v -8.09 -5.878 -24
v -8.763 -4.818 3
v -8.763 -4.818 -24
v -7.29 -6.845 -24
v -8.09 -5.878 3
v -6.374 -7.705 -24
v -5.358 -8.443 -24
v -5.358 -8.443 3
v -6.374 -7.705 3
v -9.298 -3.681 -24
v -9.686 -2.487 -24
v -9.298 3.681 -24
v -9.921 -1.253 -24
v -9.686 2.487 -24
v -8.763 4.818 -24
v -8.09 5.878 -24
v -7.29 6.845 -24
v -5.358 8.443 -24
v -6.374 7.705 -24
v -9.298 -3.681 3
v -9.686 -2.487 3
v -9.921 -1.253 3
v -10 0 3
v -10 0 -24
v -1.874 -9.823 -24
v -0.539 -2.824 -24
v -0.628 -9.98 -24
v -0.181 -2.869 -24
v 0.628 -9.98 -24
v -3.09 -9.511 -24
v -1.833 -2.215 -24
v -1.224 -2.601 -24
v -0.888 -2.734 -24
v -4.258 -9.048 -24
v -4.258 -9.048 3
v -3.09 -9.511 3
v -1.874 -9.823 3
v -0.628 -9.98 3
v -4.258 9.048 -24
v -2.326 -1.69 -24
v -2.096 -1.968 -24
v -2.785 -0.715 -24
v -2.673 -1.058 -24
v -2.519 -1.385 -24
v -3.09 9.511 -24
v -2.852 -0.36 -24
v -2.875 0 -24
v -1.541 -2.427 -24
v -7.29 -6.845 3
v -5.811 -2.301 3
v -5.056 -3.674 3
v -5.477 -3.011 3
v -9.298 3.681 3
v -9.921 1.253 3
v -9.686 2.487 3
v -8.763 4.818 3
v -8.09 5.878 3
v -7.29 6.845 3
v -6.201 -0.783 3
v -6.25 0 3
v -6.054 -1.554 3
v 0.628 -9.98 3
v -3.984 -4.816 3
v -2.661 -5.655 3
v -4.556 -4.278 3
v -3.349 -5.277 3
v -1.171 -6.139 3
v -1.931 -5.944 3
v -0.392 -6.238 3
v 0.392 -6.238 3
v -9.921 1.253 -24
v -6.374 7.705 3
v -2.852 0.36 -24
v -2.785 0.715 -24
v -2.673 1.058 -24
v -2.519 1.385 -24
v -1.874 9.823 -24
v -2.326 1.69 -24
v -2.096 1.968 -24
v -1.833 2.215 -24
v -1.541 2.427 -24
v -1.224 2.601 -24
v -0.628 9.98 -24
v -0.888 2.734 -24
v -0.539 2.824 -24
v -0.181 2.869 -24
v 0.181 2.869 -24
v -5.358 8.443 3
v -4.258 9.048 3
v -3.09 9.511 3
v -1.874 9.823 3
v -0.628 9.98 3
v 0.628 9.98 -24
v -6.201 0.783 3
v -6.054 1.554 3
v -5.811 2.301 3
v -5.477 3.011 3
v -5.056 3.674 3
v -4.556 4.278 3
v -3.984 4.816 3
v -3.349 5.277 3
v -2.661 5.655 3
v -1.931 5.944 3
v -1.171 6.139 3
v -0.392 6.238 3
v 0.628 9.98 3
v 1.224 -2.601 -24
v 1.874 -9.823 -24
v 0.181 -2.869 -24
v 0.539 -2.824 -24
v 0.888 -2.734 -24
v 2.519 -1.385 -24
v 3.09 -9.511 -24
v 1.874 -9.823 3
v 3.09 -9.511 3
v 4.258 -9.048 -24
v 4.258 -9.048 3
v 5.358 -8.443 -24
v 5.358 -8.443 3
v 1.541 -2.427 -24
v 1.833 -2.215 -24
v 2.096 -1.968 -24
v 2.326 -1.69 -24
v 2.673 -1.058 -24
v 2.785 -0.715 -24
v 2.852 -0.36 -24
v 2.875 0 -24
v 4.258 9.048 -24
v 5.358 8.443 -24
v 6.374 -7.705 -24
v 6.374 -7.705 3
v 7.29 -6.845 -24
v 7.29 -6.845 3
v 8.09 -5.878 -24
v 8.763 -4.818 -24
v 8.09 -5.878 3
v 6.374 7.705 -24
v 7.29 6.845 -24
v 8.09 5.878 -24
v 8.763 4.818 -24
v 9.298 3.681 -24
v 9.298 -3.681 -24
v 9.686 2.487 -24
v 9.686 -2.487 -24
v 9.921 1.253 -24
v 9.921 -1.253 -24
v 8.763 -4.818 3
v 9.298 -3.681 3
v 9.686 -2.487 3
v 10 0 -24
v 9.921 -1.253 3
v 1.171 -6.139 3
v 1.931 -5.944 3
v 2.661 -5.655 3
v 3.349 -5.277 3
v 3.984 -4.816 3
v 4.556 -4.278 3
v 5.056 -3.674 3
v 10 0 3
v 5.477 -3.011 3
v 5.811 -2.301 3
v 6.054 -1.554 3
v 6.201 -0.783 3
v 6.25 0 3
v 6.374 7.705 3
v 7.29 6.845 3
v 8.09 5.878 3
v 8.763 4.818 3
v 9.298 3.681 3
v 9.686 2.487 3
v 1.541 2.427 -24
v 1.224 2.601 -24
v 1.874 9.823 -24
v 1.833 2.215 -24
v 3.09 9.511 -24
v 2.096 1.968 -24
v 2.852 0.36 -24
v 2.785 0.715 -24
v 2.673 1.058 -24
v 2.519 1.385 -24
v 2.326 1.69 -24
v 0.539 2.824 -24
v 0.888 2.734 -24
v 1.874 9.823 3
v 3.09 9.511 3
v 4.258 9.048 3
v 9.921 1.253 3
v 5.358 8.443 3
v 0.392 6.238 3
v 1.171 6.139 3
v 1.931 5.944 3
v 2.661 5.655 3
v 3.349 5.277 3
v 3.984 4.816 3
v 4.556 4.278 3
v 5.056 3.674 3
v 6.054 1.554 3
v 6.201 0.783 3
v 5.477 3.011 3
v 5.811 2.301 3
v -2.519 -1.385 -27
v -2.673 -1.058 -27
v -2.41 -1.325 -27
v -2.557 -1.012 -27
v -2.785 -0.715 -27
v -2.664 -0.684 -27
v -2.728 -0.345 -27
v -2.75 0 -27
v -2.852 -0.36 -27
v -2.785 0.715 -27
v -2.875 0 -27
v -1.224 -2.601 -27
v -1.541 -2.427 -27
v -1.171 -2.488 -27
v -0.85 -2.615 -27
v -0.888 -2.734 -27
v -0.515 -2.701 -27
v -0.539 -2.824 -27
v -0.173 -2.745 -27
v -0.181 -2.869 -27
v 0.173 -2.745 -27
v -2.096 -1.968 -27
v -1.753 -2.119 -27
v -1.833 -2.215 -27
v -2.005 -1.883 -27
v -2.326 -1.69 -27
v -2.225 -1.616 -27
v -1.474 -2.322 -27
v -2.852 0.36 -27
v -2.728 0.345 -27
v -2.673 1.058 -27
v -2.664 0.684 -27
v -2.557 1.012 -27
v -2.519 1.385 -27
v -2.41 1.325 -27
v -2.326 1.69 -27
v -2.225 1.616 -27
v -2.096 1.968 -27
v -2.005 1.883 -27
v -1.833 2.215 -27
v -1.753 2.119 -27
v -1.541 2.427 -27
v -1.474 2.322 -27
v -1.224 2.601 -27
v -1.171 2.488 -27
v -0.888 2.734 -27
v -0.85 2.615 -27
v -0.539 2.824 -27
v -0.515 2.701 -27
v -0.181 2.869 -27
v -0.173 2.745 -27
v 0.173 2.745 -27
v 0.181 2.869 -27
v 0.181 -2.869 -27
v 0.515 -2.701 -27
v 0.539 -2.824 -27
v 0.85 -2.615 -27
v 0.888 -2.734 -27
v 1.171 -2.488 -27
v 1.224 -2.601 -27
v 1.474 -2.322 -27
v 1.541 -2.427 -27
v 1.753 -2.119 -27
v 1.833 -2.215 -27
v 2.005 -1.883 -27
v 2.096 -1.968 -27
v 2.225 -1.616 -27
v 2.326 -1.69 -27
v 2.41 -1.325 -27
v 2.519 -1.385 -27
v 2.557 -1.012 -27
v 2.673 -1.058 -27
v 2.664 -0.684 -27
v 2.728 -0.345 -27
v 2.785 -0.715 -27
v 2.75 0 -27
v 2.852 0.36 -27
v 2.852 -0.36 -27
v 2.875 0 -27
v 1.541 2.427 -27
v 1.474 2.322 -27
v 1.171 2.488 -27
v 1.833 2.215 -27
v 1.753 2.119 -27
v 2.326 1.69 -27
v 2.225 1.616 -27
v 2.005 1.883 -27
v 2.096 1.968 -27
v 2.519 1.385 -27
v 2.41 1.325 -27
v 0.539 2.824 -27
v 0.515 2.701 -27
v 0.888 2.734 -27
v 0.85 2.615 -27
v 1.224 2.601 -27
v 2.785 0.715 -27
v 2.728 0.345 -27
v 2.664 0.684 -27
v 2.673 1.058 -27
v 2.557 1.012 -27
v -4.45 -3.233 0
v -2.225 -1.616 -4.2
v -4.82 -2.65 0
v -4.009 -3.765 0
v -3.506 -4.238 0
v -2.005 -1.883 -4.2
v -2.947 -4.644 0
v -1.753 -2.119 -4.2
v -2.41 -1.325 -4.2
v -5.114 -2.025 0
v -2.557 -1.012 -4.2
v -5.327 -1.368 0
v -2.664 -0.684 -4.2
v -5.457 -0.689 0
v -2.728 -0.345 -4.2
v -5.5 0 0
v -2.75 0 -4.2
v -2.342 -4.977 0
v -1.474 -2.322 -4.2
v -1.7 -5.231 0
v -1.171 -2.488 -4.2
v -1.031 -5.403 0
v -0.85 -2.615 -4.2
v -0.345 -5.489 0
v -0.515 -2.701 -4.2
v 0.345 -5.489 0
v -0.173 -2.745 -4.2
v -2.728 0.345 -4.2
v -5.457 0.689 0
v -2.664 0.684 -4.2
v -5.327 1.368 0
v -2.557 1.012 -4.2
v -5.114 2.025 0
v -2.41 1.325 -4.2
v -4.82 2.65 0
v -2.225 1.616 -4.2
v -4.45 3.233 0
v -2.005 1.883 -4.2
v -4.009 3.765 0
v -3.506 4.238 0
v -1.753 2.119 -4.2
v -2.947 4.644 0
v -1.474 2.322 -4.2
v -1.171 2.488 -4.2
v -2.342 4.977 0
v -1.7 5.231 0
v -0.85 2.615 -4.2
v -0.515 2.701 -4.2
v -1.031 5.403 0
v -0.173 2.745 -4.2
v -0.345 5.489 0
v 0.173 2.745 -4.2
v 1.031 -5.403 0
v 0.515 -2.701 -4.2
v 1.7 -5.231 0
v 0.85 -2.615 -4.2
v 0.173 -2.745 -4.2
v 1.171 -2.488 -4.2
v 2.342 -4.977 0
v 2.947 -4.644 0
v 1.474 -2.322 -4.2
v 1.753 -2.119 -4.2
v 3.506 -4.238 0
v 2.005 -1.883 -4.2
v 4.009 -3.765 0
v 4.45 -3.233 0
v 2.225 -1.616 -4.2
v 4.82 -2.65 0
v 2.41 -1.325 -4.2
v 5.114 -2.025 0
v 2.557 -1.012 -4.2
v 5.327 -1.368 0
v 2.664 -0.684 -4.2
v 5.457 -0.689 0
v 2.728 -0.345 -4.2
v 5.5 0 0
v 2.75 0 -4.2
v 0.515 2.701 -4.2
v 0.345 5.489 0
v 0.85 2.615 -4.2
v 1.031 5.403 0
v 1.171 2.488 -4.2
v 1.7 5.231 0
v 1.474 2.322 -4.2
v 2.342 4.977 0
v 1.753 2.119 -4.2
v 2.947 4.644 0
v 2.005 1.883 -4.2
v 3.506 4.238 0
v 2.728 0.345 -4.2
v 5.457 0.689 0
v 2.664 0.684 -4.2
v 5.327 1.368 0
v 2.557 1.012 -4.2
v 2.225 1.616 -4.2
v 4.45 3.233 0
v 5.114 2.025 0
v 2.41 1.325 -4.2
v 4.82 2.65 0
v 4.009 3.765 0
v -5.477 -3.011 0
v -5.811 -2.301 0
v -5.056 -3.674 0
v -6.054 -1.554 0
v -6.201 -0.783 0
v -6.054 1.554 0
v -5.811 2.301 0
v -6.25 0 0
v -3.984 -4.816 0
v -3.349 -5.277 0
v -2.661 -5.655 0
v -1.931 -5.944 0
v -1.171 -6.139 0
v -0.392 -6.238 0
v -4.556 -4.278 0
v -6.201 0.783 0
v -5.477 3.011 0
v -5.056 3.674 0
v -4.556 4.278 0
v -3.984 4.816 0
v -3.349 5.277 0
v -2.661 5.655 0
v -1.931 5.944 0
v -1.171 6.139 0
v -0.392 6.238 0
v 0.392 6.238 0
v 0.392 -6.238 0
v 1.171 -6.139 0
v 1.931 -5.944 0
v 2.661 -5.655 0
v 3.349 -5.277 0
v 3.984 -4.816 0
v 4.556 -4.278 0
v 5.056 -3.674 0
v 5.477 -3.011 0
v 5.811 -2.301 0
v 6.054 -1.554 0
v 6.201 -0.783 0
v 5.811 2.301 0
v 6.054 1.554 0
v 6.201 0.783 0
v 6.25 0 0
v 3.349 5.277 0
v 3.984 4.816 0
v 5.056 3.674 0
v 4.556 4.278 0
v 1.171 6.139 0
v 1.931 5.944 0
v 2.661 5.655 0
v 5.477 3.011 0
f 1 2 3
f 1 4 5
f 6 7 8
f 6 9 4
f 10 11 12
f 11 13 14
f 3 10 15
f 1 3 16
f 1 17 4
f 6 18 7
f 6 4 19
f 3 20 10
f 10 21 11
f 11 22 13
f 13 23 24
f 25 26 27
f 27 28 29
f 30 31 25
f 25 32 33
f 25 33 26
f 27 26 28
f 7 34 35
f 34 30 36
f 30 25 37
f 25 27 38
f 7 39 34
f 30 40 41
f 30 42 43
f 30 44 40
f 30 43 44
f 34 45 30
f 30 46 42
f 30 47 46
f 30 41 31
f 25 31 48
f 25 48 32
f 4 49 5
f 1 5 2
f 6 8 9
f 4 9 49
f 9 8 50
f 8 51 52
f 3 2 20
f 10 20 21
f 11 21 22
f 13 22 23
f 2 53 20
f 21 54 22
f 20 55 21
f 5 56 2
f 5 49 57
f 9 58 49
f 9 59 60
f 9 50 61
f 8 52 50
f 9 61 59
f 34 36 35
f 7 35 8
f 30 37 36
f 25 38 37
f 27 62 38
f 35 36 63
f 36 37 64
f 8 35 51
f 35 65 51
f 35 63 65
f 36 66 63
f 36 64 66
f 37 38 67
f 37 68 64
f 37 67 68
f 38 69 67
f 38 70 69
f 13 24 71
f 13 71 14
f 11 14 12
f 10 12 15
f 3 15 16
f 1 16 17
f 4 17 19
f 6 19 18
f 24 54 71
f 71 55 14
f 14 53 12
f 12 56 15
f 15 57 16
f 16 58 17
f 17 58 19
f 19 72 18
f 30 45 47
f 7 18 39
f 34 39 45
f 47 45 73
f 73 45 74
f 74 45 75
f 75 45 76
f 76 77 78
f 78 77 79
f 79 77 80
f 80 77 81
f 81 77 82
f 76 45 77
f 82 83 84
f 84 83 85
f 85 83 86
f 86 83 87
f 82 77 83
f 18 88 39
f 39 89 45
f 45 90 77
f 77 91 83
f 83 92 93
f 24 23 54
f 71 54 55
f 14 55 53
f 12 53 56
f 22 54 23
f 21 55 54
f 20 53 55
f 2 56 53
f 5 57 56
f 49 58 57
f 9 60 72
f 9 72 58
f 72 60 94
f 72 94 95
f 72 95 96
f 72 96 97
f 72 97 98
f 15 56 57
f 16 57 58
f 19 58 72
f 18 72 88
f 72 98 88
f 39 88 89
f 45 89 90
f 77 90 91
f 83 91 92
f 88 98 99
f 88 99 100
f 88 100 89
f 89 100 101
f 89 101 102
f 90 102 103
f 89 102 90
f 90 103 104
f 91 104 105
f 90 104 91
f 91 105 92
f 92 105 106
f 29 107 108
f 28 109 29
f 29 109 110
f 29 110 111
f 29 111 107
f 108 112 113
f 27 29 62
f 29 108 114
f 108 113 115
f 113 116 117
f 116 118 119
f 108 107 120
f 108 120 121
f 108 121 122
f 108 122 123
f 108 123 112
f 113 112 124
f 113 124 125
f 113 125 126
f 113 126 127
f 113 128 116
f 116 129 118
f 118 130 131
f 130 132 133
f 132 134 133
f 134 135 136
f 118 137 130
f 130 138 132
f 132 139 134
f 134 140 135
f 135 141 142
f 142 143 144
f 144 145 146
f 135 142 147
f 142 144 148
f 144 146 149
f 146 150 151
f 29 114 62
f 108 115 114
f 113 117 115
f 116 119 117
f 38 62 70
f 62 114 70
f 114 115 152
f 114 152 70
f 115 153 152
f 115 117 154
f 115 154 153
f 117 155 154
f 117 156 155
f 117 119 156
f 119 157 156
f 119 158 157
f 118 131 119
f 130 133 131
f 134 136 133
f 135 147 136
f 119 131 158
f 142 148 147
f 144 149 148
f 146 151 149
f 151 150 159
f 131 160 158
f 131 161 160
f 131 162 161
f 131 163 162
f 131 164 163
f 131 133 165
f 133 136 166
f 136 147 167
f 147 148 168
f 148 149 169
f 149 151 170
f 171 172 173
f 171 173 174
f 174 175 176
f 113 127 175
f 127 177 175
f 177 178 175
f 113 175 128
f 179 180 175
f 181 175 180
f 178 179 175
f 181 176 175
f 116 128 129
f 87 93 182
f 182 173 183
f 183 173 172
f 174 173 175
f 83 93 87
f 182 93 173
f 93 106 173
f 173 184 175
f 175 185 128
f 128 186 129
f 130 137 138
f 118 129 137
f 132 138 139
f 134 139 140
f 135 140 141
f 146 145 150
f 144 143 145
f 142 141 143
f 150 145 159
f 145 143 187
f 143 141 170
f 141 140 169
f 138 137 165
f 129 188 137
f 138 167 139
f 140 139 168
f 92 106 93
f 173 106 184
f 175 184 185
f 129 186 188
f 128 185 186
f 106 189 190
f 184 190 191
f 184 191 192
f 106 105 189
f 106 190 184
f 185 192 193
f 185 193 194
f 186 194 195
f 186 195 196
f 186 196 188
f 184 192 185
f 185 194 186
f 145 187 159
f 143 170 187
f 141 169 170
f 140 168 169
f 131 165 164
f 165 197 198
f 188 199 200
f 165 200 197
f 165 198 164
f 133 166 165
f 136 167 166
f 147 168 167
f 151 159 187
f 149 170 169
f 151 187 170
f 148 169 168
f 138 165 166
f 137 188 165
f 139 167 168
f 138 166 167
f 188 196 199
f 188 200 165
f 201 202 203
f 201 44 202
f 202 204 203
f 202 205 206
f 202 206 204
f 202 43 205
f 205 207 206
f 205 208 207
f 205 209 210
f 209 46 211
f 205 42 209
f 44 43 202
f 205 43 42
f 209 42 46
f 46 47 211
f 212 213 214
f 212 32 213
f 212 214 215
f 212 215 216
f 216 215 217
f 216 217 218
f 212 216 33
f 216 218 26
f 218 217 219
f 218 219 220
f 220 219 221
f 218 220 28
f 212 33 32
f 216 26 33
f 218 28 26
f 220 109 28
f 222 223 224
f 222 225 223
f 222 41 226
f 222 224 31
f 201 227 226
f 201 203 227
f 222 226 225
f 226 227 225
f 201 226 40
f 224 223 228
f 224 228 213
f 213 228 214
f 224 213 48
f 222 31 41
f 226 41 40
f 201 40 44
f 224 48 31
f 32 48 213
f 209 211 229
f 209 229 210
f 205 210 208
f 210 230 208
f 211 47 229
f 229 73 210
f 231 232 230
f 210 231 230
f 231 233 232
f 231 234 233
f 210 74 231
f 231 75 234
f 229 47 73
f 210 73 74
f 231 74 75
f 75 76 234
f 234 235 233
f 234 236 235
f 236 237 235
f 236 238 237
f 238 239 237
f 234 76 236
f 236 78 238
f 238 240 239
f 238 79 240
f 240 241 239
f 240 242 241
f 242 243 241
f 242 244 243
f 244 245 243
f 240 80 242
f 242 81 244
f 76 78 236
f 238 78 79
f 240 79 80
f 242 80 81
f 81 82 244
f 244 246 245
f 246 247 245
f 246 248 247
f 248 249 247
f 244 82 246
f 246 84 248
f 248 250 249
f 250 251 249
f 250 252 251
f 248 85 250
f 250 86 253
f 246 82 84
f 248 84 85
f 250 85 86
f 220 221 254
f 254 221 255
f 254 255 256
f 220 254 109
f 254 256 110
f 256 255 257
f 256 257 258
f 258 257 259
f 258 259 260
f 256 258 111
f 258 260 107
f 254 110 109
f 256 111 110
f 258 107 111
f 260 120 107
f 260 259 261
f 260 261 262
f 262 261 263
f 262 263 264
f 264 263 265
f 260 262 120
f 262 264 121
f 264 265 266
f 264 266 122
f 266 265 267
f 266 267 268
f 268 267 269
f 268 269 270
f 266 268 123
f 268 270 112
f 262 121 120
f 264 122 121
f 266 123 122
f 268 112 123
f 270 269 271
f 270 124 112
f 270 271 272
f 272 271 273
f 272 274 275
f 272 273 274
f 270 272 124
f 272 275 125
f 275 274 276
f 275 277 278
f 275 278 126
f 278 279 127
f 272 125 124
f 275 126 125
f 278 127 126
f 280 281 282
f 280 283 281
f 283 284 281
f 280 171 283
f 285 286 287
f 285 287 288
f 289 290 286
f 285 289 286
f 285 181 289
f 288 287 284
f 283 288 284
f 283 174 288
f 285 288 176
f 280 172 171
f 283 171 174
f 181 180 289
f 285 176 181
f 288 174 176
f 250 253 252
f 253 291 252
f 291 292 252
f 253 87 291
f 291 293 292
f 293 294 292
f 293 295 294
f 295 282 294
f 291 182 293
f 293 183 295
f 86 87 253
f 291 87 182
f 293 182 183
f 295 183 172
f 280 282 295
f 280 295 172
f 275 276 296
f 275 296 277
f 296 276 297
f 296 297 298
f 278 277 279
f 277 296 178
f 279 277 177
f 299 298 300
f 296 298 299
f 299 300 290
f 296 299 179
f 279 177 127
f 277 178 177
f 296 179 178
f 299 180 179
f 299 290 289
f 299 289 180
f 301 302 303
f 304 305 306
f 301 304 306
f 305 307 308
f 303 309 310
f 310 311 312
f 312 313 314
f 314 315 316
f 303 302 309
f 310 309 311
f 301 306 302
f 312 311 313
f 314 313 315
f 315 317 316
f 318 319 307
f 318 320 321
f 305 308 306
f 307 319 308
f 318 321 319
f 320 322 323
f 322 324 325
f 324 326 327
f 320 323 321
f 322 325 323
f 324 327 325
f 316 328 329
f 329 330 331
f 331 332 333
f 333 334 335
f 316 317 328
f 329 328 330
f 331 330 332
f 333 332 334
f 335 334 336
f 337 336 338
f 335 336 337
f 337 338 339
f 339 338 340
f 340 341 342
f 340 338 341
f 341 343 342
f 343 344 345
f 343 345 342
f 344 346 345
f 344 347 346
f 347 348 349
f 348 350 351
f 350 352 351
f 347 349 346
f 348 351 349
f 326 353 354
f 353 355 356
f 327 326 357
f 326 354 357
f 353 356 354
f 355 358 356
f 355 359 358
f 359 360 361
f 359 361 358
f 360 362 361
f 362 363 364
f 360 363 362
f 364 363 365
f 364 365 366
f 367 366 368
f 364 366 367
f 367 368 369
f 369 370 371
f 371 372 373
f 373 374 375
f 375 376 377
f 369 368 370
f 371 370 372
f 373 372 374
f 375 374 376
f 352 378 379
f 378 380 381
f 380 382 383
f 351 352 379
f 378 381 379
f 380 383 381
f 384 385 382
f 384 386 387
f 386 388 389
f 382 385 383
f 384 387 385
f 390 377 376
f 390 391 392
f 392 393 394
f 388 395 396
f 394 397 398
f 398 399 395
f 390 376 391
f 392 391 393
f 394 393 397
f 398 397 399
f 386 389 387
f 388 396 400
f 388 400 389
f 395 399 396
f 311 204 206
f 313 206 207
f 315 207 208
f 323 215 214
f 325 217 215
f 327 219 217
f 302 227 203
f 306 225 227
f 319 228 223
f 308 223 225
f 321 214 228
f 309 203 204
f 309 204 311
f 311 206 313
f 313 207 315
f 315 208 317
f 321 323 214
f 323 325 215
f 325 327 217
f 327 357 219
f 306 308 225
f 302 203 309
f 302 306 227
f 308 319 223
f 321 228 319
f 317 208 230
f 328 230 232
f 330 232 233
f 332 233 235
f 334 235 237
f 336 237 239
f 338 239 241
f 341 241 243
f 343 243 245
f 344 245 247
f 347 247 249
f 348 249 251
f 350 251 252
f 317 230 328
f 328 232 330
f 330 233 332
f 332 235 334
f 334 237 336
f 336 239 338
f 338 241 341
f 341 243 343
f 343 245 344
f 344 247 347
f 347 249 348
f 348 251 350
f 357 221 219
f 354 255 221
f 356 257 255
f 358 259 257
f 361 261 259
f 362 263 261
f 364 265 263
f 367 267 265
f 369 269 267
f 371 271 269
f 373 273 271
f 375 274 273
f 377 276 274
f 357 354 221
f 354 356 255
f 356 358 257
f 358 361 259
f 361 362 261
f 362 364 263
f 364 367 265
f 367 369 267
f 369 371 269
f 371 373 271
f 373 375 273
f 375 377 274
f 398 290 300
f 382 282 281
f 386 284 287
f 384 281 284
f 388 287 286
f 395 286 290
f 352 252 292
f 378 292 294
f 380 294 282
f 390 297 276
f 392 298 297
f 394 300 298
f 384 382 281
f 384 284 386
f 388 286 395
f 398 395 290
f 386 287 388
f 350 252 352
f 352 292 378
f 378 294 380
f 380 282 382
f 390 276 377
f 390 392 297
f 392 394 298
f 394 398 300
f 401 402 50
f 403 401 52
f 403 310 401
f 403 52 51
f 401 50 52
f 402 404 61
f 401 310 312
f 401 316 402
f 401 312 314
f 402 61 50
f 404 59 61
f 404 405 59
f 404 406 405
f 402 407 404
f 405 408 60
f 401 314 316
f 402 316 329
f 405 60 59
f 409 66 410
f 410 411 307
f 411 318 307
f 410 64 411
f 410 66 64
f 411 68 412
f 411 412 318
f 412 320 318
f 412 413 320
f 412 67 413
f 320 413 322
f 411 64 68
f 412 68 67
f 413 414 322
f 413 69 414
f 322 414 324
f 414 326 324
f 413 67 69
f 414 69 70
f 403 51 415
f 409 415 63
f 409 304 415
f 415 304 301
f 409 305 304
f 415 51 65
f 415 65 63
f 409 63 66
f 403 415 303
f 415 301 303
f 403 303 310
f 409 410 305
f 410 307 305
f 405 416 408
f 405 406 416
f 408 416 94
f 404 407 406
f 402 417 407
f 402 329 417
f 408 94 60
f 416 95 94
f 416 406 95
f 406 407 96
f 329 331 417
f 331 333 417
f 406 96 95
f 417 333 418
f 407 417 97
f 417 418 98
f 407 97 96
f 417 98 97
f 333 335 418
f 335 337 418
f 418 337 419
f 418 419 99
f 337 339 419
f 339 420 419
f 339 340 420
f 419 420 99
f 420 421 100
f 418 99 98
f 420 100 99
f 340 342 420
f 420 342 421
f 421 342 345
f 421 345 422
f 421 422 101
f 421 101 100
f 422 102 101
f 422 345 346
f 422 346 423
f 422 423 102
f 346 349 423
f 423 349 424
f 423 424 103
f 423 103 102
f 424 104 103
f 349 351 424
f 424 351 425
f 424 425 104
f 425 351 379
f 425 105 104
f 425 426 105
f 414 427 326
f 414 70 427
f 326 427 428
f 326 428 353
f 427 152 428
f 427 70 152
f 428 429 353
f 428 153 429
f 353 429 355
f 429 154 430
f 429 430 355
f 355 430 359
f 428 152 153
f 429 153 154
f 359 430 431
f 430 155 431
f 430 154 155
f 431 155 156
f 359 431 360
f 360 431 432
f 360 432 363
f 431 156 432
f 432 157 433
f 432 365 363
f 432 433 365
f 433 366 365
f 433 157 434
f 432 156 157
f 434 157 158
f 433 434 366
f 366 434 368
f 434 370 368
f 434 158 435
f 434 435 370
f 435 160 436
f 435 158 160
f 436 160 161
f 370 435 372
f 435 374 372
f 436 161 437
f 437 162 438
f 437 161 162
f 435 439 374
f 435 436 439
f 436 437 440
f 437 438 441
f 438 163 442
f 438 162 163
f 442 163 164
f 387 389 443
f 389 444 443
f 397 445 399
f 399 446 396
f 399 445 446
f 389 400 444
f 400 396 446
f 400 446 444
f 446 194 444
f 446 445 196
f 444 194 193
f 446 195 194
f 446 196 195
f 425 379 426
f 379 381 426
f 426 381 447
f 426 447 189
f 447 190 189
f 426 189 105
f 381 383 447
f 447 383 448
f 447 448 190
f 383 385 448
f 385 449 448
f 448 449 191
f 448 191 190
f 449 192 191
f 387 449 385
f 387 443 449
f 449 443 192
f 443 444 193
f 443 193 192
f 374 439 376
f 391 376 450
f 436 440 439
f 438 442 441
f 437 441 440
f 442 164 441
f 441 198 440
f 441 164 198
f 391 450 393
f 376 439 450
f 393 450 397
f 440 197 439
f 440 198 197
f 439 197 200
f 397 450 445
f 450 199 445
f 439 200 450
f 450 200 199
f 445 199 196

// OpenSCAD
$fn = 50;

difference() {
	union() {
		translate(v = [0, 0, -24.0]) {
			cylinder(h = 27, r = 10.0);
		}
		#translate(v = [0, 0, -27.0]) {
			cylinder(h = 27, r = 2.875);
		}
	}
	union() {
		translate(v = [0, 0, 0]) {
			rotate(a = [0, 0, 0]) {
				difference() {
					union() {
						translate(v = [0, 0, -27.0]) {
							cylinder(h = 27, r = 2.25);
						}
						translate(v = [0, 0, -4.2]) {
							cylinder(h = 4.2, r1 = 2.75, r2 = 5.5);
						}
						translate(v = [0, 0, -27.0]) {
							cylinder(h = 27, r = 2.75);
						}
						translate(v = [0, 0, -27.0]) {
							cylinder(h = 27, r = 2.25);
						}
					}
					union();
				}
			}
		}
		#cylinder(h = 3, r = 6.25);
	}
}
